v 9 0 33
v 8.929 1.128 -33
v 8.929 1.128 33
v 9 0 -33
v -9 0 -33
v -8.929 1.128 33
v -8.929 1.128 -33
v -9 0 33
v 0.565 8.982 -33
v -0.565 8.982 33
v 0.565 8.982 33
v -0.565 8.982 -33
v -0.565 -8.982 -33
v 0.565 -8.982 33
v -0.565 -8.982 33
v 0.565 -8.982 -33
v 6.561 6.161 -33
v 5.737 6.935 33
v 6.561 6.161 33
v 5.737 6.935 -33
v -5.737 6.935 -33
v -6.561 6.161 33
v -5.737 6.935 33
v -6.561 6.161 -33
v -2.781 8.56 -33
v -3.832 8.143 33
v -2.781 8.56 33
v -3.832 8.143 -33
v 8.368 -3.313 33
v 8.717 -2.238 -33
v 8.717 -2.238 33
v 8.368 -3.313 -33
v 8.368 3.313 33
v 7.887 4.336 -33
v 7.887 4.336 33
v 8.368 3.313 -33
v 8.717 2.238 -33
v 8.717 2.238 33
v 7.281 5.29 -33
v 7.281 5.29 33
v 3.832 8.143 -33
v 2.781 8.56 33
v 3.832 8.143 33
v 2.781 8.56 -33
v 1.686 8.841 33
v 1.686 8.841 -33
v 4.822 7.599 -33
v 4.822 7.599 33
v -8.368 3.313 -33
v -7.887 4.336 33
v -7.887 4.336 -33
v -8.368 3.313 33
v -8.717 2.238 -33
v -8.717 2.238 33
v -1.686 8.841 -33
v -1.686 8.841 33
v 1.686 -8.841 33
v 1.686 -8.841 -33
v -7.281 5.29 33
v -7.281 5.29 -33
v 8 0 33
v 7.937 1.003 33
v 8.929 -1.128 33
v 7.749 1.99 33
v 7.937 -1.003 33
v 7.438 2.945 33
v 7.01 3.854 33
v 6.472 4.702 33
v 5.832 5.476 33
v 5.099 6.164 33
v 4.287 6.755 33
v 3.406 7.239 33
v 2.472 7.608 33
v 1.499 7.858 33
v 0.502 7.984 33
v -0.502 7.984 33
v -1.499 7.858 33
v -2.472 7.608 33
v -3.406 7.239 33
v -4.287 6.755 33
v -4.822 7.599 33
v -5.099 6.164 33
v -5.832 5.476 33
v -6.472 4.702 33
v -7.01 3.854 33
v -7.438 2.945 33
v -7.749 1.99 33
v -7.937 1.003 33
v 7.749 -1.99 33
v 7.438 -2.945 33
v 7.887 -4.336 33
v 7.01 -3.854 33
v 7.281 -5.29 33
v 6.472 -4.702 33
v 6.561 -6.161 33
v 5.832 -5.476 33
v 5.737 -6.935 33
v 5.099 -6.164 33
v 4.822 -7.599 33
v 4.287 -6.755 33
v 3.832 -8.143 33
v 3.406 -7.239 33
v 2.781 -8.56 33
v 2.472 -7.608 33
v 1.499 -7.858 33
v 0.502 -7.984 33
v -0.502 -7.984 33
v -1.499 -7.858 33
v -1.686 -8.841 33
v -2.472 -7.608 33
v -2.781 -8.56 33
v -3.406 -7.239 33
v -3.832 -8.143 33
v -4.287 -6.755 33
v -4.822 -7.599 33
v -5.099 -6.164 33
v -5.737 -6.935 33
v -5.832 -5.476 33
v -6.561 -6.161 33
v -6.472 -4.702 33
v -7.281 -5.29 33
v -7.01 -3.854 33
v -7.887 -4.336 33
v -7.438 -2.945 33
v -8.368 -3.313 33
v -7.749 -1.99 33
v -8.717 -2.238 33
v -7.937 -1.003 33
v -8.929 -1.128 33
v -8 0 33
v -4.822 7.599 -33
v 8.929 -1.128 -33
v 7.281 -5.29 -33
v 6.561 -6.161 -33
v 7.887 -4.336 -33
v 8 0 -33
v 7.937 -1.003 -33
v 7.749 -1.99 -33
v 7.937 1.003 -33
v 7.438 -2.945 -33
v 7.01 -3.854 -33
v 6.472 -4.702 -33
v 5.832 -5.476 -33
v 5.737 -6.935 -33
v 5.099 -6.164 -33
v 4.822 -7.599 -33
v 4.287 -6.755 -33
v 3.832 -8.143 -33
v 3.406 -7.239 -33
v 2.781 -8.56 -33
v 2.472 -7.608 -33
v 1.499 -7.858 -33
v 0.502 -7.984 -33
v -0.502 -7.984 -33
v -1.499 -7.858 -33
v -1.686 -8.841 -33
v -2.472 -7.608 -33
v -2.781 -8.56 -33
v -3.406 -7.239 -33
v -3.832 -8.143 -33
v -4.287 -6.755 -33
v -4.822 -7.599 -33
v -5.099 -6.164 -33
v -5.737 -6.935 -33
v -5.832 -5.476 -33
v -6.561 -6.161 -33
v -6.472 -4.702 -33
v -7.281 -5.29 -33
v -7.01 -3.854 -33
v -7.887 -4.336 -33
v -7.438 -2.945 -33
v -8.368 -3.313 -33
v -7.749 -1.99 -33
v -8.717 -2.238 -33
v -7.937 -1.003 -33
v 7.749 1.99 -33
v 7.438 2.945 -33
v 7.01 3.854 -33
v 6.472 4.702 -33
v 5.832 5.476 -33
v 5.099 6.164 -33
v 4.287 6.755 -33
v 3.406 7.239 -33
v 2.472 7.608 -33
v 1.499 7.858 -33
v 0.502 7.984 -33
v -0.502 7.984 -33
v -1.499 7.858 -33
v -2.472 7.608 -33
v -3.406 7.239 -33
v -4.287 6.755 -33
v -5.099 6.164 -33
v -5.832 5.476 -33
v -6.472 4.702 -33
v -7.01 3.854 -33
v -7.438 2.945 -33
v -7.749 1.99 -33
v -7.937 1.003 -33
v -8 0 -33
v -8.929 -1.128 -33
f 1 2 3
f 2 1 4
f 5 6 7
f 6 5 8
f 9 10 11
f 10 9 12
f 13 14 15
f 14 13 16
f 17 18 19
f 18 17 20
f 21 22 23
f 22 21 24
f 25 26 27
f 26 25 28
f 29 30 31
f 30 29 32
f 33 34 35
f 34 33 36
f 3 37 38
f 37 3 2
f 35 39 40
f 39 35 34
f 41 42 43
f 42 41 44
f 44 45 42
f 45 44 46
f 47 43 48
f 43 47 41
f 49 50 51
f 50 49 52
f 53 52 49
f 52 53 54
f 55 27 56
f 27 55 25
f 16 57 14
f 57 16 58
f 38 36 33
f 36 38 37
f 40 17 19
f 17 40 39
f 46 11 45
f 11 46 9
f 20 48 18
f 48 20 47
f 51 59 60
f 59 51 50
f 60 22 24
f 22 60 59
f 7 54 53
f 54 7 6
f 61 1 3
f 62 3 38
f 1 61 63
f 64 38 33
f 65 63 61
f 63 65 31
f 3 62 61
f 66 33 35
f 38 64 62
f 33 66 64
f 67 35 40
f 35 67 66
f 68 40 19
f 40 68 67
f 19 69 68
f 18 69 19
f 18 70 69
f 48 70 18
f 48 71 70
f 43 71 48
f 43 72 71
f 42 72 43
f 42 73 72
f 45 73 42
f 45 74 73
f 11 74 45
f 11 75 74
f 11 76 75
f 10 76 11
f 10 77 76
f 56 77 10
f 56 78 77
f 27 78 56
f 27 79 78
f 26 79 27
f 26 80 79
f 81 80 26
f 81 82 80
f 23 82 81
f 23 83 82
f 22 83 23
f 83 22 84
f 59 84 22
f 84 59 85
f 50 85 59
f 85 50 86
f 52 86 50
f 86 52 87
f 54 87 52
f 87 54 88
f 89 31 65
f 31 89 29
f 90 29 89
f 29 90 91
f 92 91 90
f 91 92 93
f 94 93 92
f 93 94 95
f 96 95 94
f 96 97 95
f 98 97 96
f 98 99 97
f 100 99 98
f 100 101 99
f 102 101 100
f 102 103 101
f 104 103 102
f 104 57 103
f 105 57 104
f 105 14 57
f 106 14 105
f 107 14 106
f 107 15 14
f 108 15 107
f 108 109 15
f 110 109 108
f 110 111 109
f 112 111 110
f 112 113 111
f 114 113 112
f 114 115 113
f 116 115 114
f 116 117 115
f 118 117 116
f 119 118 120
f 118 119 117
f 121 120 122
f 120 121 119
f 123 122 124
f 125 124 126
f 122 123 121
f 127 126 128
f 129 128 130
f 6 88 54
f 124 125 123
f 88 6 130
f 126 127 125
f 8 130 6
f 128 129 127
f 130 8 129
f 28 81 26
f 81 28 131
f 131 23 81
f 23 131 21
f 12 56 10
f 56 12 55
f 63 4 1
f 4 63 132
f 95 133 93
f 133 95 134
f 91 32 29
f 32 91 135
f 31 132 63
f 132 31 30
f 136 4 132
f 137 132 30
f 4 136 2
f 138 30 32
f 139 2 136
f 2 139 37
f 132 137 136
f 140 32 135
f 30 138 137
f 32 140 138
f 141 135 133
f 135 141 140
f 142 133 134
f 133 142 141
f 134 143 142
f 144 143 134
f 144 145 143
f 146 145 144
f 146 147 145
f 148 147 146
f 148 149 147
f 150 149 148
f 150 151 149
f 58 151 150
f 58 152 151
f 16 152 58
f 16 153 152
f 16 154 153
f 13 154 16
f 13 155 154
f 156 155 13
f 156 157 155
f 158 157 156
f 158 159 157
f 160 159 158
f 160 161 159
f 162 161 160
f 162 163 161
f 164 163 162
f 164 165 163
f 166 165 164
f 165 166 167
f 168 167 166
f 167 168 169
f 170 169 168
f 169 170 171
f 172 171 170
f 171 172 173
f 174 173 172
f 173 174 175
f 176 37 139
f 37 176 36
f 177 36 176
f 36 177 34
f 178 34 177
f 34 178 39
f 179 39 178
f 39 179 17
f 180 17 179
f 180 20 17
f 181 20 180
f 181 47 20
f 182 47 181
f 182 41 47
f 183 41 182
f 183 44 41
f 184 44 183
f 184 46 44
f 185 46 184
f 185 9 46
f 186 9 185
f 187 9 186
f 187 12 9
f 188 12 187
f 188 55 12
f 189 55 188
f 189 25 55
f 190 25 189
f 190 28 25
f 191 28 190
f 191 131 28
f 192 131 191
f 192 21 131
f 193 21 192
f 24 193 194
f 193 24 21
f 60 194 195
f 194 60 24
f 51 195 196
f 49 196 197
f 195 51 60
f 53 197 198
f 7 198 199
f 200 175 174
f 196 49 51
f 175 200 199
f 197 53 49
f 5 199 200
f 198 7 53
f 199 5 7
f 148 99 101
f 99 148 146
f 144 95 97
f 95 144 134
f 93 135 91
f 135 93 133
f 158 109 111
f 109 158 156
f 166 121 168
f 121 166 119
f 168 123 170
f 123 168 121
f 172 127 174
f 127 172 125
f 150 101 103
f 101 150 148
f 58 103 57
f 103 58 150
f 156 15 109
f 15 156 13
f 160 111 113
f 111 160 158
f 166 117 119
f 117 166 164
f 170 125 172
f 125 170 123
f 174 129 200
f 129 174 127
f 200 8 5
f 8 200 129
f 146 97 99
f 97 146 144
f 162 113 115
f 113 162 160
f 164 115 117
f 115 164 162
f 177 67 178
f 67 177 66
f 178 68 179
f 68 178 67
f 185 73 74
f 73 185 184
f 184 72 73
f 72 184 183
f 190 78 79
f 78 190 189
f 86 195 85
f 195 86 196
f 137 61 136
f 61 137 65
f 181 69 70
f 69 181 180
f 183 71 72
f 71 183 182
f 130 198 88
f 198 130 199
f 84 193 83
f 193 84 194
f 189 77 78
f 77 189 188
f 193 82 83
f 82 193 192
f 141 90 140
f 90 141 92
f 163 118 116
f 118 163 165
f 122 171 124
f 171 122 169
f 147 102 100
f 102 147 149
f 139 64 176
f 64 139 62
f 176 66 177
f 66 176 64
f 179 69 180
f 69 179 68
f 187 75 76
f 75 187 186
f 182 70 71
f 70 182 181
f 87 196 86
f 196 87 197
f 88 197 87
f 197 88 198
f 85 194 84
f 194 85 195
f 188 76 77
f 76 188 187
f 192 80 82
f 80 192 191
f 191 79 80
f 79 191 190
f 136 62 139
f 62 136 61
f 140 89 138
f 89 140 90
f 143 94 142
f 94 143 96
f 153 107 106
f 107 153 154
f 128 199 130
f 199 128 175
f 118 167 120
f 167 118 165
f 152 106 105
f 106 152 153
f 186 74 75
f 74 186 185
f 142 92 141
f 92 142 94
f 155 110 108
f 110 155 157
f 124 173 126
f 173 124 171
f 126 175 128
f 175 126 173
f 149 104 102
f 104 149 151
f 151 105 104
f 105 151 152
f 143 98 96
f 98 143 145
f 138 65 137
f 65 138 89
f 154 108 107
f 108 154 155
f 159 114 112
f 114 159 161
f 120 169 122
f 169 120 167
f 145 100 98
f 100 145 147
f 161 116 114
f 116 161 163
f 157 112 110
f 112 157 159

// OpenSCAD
$fn = 50;


difference() {
	union() {
		translate(v = [0, 0, -33.0000000000]) {
			cylinder(h = 66, r = 9.0000000000);
		}
	}
	union() {
		translate(v = [0, 0, -100.0000000000]) {
			cylinder(h = 200, r = 8);
		}
	}
}
